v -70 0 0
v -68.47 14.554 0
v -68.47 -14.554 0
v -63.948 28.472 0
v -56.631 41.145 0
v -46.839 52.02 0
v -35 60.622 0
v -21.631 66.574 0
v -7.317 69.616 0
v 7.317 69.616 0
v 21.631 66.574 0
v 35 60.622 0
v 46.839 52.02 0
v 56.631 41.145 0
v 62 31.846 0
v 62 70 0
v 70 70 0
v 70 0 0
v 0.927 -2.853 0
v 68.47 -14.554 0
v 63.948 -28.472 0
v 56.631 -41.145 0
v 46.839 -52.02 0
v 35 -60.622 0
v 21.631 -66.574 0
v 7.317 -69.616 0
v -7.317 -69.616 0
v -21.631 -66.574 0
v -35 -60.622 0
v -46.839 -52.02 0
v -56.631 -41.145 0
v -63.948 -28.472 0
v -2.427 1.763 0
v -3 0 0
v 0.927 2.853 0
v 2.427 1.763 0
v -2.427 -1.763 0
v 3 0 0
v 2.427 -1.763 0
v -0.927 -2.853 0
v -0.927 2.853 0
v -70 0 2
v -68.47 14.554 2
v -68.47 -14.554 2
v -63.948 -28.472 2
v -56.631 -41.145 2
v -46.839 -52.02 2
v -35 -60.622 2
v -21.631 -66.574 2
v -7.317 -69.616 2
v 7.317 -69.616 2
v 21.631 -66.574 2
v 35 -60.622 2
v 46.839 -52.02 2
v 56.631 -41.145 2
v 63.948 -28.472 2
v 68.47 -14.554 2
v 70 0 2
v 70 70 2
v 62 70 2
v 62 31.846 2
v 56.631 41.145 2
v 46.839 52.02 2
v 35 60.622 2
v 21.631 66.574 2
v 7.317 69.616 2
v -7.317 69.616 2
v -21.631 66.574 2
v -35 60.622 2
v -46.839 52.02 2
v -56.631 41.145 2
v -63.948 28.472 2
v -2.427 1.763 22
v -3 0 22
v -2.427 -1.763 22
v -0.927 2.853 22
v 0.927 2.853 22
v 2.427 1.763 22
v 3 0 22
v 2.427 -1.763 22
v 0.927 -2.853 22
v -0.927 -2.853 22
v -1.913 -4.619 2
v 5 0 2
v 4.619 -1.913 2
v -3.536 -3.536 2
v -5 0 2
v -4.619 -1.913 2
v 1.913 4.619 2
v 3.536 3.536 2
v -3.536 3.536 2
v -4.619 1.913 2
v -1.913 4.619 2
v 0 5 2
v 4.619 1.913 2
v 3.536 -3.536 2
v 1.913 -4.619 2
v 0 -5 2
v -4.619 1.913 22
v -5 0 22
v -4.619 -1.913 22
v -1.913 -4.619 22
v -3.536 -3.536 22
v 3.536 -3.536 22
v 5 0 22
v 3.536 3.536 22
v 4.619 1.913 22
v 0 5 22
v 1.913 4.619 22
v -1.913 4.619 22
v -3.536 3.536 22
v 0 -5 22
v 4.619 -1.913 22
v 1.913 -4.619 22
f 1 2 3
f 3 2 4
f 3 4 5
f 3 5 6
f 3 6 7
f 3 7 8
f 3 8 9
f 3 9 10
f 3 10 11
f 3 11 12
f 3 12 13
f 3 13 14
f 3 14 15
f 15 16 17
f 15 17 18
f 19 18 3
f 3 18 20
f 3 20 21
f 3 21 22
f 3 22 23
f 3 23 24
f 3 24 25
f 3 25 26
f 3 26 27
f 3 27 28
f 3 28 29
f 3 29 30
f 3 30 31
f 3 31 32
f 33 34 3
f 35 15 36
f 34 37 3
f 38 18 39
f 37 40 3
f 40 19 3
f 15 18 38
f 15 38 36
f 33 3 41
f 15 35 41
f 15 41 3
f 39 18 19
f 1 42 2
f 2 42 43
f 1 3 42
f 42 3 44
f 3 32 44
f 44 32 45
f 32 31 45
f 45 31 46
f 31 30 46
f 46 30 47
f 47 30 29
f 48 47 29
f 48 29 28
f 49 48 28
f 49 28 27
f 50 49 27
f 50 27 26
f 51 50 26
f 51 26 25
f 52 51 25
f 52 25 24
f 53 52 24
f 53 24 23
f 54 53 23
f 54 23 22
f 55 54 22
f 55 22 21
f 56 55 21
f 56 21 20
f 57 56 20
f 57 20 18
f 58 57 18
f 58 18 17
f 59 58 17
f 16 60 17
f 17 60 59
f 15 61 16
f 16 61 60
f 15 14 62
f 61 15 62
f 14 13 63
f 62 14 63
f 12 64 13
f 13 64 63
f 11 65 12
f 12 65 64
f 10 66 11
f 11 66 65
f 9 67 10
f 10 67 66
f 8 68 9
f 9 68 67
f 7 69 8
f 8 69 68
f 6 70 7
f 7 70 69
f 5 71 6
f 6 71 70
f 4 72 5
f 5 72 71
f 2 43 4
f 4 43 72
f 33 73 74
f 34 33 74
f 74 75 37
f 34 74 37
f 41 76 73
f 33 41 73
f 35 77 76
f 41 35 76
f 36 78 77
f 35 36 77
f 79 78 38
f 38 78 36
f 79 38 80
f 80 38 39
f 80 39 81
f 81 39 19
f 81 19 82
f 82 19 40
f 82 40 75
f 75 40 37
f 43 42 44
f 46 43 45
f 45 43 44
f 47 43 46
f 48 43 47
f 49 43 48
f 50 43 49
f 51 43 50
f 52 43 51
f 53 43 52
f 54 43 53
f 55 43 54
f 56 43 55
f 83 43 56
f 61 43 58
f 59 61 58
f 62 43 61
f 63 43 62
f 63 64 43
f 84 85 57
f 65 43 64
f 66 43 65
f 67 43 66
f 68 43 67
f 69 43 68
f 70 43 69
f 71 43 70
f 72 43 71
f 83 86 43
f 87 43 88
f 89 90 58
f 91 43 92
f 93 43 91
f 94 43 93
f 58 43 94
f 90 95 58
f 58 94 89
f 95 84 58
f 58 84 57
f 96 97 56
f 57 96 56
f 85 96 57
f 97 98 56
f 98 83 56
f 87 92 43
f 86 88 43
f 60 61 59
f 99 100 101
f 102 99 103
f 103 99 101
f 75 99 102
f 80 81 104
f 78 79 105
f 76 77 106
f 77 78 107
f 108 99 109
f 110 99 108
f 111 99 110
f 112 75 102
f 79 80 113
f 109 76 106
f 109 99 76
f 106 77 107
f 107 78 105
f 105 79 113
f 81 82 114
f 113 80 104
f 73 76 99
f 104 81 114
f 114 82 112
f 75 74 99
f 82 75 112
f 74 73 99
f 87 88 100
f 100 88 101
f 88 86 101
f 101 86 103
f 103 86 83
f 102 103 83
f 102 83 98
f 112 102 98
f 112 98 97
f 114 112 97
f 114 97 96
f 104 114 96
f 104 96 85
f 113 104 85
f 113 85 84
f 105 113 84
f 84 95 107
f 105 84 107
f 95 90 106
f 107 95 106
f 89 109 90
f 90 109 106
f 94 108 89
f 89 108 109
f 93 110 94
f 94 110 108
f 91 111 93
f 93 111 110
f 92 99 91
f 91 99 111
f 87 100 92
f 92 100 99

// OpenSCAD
difference() {
union() {
union() {
translate([0,0,0]) cylinder(2.0,70,70,center=false); 
translate([62,0,0]) cube([8,70,2],center=false); 
}
translate([0,0,2]) cylinder(20.0,5,5,center=false); 
}
translate([0,0,-2]) cylinder(26.0,3,3,center=false); 
}
